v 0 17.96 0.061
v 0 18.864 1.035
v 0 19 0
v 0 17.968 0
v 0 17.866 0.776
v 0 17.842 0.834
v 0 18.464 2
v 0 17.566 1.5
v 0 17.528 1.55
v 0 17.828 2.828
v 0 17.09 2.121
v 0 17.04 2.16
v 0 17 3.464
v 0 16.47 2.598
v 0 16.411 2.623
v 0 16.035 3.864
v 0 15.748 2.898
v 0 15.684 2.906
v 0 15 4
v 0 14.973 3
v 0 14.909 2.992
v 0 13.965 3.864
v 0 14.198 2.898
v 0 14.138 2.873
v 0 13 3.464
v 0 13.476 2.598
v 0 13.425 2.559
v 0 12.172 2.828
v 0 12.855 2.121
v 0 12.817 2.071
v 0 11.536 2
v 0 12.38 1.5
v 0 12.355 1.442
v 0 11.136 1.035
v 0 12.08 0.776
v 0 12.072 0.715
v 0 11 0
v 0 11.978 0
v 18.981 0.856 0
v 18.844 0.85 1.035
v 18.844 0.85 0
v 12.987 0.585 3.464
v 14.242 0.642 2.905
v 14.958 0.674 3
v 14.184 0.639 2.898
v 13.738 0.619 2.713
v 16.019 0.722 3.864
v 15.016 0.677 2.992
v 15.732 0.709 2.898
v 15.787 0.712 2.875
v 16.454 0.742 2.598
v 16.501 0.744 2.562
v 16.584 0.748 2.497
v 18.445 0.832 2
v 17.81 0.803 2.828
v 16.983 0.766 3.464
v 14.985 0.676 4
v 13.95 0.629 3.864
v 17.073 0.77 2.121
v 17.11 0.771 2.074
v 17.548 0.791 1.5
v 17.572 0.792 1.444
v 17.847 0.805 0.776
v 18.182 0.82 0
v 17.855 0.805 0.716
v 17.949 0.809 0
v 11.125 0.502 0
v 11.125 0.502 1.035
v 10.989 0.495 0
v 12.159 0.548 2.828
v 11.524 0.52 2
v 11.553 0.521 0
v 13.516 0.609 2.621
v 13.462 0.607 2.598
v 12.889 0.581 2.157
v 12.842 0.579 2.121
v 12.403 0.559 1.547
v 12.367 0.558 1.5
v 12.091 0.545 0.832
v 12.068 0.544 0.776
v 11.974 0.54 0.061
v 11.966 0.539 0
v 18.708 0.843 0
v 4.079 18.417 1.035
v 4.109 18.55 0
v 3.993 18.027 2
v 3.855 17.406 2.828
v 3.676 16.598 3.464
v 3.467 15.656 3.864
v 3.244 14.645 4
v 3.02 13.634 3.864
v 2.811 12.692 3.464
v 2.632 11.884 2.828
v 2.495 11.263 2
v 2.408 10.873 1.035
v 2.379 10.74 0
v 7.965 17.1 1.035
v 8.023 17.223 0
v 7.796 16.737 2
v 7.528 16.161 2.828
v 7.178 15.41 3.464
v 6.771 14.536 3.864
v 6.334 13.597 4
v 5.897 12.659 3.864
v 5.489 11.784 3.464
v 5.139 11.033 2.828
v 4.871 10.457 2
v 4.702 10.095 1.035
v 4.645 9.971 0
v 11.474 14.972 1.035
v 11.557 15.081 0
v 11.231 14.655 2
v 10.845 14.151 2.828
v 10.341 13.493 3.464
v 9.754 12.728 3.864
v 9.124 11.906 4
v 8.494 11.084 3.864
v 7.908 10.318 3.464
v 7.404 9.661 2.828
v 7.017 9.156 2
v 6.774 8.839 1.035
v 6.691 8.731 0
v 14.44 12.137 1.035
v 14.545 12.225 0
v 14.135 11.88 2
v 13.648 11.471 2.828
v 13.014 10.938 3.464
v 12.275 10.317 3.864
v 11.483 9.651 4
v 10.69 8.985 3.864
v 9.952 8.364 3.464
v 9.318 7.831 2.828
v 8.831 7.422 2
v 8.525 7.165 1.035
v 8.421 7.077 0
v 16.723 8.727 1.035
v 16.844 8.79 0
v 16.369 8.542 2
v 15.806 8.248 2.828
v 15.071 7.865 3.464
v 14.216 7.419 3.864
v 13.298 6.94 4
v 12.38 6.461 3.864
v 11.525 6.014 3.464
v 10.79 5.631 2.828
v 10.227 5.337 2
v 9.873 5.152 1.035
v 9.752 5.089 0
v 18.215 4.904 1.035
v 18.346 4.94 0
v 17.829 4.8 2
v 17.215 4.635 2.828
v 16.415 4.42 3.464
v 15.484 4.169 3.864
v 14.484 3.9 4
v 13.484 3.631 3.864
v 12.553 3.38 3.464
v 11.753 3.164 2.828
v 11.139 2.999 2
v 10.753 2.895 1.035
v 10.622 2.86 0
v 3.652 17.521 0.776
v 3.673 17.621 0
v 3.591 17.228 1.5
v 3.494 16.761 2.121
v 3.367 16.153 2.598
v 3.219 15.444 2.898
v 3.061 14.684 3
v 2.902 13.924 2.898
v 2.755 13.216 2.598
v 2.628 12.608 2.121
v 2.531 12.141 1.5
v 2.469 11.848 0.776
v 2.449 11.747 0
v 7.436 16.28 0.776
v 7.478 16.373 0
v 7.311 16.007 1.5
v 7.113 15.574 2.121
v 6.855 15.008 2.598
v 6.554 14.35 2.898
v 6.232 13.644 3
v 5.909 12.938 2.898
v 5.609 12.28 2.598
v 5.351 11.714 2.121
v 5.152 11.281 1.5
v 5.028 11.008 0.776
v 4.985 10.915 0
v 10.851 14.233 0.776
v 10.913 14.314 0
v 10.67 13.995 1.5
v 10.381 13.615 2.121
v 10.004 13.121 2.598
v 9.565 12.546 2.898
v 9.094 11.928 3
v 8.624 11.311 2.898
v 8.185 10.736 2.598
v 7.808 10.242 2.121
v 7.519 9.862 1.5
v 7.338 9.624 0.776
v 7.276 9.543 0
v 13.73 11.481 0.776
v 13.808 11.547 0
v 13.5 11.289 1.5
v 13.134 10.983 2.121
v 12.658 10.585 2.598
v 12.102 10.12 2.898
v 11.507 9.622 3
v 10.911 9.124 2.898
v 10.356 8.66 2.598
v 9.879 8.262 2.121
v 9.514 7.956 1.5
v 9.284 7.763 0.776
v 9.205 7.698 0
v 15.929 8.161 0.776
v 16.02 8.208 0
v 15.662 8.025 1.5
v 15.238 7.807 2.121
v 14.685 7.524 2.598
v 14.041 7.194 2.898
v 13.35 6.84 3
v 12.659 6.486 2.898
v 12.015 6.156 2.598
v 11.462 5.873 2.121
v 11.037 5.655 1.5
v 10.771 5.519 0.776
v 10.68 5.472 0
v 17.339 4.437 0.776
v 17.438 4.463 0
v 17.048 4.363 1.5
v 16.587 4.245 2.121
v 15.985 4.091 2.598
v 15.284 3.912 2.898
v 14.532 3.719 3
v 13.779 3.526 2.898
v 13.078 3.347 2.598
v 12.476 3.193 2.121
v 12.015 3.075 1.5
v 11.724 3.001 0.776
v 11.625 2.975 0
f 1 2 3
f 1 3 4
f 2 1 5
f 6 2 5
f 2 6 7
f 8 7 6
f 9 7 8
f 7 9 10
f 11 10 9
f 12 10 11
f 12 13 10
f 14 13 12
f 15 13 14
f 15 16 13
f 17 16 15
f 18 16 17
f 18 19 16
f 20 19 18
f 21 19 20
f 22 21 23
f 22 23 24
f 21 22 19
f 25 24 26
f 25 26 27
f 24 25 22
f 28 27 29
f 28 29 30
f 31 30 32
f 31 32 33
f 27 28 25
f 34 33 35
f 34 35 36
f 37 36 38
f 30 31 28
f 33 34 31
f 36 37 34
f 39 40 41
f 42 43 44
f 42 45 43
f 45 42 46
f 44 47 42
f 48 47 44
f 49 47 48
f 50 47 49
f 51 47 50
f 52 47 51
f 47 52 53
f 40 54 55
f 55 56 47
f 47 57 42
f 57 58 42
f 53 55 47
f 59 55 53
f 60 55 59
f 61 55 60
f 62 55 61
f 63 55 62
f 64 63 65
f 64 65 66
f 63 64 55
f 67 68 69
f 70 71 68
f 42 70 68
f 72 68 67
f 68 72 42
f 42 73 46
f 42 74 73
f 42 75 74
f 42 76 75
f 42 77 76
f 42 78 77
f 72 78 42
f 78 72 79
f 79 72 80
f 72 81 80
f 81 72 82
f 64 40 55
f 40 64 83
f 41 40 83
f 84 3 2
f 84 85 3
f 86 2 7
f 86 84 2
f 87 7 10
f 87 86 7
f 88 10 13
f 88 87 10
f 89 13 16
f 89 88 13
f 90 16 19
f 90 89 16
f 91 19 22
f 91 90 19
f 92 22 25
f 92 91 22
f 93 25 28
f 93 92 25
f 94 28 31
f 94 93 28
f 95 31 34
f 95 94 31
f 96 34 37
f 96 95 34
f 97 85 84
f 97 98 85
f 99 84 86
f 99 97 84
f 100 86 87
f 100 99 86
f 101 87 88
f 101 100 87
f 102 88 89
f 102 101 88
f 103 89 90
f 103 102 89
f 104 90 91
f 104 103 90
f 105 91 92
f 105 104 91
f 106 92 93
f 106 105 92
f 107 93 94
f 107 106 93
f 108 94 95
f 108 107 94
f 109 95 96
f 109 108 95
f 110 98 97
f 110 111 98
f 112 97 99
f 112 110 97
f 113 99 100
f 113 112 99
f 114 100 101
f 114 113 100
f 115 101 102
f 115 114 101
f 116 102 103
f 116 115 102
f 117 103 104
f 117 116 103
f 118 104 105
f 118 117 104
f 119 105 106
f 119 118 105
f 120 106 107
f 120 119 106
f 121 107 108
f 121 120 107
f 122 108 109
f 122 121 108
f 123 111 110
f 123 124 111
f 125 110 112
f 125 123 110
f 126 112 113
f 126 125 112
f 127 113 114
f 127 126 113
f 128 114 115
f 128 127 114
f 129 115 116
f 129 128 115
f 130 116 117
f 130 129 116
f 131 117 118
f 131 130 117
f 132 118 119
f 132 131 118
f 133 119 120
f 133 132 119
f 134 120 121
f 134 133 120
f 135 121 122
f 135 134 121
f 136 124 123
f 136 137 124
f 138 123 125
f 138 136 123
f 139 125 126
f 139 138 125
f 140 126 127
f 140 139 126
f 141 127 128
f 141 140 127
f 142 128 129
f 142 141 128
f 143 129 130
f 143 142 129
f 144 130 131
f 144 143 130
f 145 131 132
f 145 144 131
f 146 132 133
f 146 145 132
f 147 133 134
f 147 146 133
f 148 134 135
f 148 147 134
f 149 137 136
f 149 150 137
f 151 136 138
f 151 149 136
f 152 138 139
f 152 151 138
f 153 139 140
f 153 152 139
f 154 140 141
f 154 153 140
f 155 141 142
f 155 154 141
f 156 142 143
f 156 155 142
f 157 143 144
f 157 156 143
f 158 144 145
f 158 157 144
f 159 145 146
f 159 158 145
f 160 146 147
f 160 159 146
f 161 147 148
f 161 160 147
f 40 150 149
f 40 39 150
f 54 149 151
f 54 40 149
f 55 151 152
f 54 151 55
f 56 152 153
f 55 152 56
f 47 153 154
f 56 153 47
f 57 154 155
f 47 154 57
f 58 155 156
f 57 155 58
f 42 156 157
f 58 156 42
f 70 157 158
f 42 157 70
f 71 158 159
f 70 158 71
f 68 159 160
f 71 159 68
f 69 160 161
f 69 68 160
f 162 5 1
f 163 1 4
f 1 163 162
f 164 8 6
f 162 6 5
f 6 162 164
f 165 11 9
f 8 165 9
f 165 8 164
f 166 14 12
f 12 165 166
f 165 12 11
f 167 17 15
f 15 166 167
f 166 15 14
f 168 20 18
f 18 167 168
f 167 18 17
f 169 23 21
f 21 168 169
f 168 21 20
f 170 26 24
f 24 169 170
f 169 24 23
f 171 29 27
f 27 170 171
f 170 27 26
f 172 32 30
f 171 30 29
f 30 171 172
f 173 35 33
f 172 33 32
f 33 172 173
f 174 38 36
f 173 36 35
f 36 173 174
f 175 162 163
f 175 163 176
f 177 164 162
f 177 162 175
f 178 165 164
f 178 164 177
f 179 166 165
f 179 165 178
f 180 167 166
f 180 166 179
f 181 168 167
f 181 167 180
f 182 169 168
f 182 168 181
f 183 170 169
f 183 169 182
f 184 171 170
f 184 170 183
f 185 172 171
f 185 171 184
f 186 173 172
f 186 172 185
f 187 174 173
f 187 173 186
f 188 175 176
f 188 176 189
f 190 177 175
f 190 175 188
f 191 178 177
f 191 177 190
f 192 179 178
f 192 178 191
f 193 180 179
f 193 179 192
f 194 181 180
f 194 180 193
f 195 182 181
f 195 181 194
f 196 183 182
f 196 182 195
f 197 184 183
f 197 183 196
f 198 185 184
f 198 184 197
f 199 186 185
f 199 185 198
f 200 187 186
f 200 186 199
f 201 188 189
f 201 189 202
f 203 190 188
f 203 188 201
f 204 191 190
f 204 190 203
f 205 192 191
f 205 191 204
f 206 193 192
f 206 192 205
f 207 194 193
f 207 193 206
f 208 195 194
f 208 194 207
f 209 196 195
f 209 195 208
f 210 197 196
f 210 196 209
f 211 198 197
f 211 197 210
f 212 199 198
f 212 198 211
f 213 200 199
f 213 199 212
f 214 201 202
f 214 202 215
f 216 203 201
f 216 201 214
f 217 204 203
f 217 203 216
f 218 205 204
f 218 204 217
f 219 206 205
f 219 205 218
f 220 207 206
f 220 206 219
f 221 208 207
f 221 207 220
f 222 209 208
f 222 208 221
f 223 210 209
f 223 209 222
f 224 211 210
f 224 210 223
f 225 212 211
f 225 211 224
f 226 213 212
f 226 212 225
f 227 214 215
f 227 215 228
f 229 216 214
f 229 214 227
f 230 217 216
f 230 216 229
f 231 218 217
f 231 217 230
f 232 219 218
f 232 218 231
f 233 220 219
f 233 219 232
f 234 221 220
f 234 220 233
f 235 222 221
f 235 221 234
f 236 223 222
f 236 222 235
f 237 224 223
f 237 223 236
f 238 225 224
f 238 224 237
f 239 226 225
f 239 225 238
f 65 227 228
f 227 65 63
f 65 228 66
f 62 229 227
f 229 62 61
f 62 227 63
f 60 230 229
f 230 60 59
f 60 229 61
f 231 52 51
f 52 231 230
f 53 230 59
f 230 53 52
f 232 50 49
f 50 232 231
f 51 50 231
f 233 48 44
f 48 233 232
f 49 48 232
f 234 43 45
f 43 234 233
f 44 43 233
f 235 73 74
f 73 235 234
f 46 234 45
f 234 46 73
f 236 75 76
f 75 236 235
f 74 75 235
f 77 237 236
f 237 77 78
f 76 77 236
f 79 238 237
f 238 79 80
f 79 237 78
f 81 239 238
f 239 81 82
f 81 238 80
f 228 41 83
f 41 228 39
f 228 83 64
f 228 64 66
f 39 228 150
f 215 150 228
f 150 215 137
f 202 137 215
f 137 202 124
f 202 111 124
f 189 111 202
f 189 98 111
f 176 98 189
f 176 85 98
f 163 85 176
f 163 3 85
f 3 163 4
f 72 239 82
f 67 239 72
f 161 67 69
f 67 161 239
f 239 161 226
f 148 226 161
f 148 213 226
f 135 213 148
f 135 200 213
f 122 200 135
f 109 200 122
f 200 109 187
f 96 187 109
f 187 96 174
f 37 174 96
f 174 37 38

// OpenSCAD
// file: ../build_environments.scad
// build_environments.scad: modules to build level sections
//

module pool(diameter=10.0, wall_height=2.0, step_width=3.0, connections=[])
{
    difference() {
        union() {
        difference() {
            cylinder(h=0.5,r1=diameter+step_width,r2=diameter+step_width,$fn=48);
            translate([0,0,-0.1])
                cylinder(h=0.7,r1=diameter,r2=diameter,$fn=48);
        }
        difference() {
            cylinder(h=wall_height,r1=diameter+step_width+1.0,r2=diameter+step_width+1.0,$fn=48);
            translate([0,0,-0.1])
                cylinder(h=wall_height+0.2,r1=diameter+step_width,r2=diameter+step_width,$fn=48);
        }
        }
    
        for (c = connections)
        {
            rotate([0,90,0]) {
                angle = atan2(c[1],c[0]);
                rotate([-angle,0,0]) {
                    cylinder(h=diameter+5.0,r1=c[2],r2=c[2],$fn=48);
                }
            }
        }
    }
}

module straight(length=10.0, width=2.0, dy1=0.0, dy2=0.0, dz=0.0)
{
    dims = [0, 0, 0, 0, 0, (dz/length)];
    matrix = [
        [ 1, dims[0], dims[1], 0 ],
        [ dims[2], 1, dims[4], 0 ],
        [ dims[5], dims[3], 1, 0 ],
        [ 0, 0, 0, 1 ]
    ];
    multmatrix(matrix)
    difference() {
        translate([dy1,0,0])
        union() {
            rotate([0,90,0]) {
                difference() {
                    cylinder(h=(length-dy1-dy2),r1=width+1.0,r2=width+1.0,$fn=24);
                    translate([0,0,-0.1])
                        cylinder(h=(length-dy1-dy2+0.2),r1=width,r2=width,$fn=24);
                }
                difference() {
                    cylinder(h=1.0,r1=width+2.0,r2=width+2.0,$fn=24);
                    translate([0,0,-0.1])
                        cylinder(h=1.2,r1=width,r2=width,$fn=24);
                }
                translate([0,0,(length-dy1-dy2)-1.0]) {
                    difference() {
                        cylinder(h=1.0,r1=width+2.0,r2=width+2.0,$fn=24);
                        translate([0,0,-0.1])
                            cylinder(h=1.2,r1=width,r2=width,$fn=24);
                    }
                }
            }
        }
        translate([0,0,-(2*width+4.0)/2])
            cube([3*length,3*length,2*width+4.0],center=true);
    }
}

module curve(p0=[0,0], center=[0,0], dir=1, angle=0.0, width=2.0)
{
    radius = sqrt((p0[0]-center[0])*(p0[0]-center[0]) + (p0[1]-center[1])*(p0[1]-center[1]));
    if (dir == 0) {
        difference() {
            rotate([0,0,-90])
            difference() {
                rotate_extrude(angle = angle, convexity = 10, $fn=32)
                    translate([radius, 0, 0])
                        circle(r = width+1.0,$fn=24);
                rotate([0,0,-1.0])
                    rotate_extrude(angle = angle+2.0, convexity = 10, $fn=32)
                        translate([radius, 0, 0])
                            circle(r = width,$fn=24);
            }
            translate([0,0,-(2*width+4.0)/2])
                cube([5*radius,5*radius,2*width+4.0],center=true);
        }
    }
    else {
        difference() {
            rotate([0,0,90])
            difference() {
                rotate_extrude(angle = -angle, convexity = 10, $fn=32)
                    translate([radius, 0, 0])
                        circle(r = width+1.0,$fn=24);
                rotate([0,0,1.0])
                    rotate_extrude(angle = -angle-2.0, convexity = 10, $fn=32)
                        translate([radius, 0, 0])
                            circle(r = width,$fn=24);
            }
            translate([0,0,-(2*width+4.0)/2])
                cube([5*radius,5*radius,2*width+4.0],center=true);
        }
    }

}

// test pool
//pool(diameter=12.0000, wall_height=3.0000, step_width=3.0000, connections=[[0.0000,-26.0000,2.0000], [23.6074,0.0000,2.0000]]);

// test straight, slope
//straight(length=26.0000, width=2.0000, dy1=11.8322, dy2=6.7082, dz=0.0000);
//straight(length=29.1549, width=12.0000, dy1=0.0000, dy2=0.0000, dz=-15.0000);

// test curve
//curve(p0=[23.6074, 0.0000], center=[23.6074, 5.0000], dir=0, angle=60.1011, width=2.0000);
//curve(p0=[33.6426, 12.4219], center=[37.9771, 9.9295], dir=1, angle=120.4627, width=2.0000);
// main file
use <../build_environments.scad>;
curve(p0=[39.8141, -86.8545], center=[33.3241, -73.3313], dir=1, angle=87.4188, width=3.0000);
